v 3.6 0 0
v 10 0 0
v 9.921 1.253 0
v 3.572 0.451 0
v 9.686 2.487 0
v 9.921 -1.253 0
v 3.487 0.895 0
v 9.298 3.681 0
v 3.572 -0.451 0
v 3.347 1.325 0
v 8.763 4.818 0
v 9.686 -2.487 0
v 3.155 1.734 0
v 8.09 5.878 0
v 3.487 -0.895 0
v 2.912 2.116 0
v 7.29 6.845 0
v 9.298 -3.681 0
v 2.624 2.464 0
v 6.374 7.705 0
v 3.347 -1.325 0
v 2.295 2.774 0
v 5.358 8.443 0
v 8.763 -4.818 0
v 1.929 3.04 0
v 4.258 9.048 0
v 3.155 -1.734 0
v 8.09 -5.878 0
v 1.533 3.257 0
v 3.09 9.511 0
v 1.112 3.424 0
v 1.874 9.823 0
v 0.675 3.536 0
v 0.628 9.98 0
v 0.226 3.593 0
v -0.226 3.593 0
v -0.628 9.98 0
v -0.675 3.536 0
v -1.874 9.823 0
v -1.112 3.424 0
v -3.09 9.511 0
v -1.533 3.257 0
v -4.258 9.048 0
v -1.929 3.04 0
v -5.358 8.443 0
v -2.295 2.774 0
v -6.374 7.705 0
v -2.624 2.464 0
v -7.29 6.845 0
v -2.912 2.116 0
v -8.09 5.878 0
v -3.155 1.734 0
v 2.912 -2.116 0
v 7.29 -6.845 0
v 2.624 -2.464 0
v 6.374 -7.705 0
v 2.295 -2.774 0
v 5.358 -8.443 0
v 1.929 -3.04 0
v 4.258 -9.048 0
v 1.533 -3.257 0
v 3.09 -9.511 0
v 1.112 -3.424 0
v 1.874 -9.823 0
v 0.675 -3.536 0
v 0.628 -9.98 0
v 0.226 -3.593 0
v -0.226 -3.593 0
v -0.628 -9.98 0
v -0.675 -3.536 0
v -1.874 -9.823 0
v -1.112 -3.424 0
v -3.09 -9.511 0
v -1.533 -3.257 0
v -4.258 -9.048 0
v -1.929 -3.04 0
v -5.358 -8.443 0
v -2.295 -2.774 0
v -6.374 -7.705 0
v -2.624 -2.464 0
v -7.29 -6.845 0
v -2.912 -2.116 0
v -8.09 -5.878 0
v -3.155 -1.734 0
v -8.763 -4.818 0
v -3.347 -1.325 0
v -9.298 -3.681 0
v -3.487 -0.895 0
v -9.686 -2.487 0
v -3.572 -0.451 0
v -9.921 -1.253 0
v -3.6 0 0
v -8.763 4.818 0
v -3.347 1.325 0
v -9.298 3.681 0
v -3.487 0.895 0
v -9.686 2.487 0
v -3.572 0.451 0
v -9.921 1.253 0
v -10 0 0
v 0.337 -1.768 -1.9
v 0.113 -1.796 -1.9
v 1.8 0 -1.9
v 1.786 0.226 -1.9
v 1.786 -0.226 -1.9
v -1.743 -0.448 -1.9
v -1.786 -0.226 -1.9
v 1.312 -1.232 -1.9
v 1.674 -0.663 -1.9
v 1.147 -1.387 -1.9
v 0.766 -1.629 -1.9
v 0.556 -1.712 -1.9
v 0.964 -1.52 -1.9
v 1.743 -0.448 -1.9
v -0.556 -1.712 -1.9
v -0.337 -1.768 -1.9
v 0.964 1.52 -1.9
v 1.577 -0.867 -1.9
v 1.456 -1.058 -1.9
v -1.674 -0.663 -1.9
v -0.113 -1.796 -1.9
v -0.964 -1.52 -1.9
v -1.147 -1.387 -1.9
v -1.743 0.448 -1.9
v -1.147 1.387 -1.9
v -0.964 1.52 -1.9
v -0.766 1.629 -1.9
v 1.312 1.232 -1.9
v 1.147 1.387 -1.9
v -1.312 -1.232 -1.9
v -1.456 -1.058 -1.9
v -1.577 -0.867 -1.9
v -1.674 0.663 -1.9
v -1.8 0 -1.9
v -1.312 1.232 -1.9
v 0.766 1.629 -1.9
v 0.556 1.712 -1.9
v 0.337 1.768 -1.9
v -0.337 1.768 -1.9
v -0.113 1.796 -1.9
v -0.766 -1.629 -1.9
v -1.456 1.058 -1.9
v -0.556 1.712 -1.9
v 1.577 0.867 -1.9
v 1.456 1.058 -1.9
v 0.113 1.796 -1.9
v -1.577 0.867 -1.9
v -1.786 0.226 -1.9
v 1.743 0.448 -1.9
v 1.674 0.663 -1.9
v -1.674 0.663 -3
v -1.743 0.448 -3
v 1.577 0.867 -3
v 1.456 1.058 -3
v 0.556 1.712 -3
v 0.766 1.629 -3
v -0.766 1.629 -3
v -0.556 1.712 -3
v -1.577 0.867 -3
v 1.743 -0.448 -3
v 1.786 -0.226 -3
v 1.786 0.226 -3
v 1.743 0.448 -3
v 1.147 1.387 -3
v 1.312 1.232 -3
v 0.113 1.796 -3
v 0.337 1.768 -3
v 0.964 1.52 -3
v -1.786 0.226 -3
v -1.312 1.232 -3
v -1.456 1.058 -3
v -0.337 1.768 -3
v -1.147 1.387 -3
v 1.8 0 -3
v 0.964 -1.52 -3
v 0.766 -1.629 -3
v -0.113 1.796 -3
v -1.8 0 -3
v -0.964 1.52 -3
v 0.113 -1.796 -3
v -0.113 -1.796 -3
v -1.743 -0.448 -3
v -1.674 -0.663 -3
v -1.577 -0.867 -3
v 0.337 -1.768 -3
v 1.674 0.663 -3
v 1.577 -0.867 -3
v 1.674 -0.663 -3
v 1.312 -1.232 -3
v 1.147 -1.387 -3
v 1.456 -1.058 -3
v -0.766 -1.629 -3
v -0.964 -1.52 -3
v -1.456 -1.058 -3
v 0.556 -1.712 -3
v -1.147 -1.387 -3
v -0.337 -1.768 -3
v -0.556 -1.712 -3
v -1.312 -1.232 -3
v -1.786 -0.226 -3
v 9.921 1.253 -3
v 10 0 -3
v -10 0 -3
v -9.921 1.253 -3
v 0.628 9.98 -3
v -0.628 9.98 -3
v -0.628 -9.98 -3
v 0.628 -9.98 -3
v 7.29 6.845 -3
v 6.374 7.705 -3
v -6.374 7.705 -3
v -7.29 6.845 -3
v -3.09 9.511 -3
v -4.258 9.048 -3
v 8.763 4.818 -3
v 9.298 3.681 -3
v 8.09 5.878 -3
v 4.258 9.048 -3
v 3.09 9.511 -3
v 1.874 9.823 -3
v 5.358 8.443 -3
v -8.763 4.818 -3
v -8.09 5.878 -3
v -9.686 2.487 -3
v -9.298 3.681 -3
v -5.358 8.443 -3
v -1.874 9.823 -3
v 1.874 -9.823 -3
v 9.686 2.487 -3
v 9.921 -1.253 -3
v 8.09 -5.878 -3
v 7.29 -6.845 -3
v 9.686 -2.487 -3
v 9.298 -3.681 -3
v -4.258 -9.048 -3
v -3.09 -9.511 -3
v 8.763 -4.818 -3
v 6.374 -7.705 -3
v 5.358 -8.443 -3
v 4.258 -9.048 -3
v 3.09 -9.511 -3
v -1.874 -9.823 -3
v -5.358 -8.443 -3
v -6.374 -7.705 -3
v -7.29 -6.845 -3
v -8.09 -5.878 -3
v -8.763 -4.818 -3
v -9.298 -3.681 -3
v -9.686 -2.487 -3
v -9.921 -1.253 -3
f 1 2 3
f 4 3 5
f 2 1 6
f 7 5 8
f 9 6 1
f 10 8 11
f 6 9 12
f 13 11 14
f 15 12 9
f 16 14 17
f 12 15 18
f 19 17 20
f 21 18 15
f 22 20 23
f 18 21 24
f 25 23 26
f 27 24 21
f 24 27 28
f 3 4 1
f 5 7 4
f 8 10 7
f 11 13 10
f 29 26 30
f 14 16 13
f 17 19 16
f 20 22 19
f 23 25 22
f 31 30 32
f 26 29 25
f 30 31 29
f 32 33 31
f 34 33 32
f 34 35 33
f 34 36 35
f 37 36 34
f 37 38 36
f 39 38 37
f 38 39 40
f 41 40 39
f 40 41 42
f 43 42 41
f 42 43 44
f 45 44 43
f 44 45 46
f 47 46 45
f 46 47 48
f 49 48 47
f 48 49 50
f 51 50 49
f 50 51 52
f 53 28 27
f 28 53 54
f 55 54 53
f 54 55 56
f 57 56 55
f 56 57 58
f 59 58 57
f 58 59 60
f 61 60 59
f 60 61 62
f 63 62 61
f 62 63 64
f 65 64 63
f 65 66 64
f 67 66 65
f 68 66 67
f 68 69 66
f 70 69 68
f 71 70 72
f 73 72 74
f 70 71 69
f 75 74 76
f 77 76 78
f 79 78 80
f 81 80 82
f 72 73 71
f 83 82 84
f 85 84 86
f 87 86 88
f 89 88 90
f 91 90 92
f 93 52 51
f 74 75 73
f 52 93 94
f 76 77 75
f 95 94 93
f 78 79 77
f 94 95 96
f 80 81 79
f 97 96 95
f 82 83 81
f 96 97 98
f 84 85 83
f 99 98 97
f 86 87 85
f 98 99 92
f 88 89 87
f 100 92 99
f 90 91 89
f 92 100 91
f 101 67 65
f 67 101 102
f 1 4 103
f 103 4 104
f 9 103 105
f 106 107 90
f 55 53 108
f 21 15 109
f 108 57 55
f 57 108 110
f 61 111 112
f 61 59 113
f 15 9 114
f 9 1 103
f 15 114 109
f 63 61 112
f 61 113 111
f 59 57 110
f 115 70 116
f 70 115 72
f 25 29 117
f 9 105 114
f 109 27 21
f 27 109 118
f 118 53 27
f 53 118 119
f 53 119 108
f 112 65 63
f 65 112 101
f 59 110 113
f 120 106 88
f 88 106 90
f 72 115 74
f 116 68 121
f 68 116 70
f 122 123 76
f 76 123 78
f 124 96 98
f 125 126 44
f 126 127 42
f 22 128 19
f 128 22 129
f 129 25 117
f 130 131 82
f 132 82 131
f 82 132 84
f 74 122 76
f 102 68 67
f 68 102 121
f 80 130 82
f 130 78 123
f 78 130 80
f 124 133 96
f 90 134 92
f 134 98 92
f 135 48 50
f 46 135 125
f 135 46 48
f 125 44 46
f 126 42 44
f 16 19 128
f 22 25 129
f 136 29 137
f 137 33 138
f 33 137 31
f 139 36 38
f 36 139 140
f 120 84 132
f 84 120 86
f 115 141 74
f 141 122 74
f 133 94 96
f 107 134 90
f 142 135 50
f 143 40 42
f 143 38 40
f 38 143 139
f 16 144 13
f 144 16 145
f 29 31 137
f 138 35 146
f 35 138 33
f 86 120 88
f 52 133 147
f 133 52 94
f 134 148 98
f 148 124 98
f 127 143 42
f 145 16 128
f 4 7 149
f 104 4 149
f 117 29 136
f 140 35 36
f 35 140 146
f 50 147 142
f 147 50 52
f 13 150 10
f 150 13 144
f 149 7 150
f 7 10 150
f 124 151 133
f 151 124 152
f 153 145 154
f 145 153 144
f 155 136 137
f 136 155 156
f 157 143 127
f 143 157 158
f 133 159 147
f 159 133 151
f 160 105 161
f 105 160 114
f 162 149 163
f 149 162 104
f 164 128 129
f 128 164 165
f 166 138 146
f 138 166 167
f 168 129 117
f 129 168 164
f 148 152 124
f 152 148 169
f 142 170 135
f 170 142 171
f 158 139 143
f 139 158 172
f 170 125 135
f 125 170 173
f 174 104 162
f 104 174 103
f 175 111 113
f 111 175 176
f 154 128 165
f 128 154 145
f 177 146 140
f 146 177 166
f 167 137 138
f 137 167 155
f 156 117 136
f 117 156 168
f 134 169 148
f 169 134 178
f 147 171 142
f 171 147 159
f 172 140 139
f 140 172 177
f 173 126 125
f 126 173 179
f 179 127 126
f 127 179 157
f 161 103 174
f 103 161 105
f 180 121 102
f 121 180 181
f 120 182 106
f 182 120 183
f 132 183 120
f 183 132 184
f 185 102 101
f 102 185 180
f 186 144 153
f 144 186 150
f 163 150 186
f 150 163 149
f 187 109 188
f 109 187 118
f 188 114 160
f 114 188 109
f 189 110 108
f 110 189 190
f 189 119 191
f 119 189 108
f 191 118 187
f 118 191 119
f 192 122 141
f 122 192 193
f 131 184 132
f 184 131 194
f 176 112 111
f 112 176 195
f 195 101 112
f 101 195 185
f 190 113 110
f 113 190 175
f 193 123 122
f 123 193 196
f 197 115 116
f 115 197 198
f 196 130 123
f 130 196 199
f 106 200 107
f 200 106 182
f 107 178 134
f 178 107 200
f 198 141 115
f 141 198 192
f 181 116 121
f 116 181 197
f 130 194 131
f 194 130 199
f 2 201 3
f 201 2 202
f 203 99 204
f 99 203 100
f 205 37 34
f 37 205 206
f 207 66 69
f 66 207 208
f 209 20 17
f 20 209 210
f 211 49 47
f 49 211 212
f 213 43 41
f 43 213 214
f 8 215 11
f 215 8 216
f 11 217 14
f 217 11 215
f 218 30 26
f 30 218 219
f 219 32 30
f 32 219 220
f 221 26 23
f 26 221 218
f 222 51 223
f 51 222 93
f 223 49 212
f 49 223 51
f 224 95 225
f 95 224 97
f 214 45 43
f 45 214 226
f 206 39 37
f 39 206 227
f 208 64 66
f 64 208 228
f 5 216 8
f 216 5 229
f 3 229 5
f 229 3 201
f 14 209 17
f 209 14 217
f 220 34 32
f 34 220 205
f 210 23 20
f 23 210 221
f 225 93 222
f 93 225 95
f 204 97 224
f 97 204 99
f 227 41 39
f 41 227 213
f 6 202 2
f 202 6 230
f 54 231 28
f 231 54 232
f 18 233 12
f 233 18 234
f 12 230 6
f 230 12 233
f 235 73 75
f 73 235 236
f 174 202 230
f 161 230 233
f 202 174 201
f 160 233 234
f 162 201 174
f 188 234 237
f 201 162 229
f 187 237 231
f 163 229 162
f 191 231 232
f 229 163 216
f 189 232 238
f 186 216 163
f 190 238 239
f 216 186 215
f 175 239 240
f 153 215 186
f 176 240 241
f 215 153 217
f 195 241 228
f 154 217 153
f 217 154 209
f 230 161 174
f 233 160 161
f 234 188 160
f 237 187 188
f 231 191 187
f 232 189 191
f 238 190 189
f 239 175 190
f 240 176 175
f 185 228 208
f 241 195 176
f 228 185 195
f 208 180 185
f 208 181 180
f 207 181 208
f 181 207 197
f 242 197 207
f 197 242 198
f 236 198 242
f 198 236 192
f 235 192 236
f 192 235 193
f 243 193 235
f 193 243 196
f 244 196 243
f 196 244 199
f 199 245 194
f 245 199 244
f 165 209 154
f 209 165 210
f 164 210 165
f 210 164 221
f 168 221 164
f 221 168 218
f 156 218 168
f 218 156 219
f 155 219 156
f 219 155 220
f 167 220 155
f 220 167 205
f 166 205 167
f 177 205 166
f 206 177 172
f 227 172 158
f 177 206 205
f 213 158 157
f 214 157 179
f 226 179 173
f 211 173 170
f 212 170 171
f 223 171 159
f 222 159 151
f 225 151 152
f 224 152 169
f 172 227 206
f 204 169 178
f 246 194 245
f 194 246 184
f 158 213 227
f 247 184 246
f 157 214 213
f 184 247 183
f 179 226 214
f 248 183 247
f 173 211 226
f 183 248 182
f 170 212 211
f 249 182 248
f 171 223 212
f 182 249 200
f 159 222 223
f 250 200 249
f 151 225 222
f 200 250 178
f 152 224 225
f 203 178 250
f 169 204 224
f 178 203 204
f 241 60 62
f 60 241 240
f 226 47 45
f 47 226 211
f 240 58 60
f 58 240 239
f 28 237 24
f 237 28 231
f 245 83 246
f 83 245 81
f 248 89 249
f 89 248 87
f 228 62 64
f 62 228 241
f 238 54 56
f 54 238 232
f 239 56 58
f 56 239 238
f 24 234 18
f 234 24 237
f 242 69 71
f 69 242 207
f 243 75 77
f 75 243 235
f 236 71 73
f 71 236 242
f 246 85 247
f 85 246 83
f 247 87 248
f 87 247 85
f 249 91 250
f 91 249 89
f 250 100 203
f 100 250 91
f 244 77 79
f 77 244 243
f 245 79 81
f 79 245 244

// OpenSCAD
$fn = 50;

difference() {
	union() {
		translate(v = [0, 0, -3.0]) {
			cylinder(h = 3, r = 10.0);
		}
	}
	union() {
		translate(v = [0, 0, 0]) {
			rotate(a = [0, 0, 0]) {
				difference() {
					union() {
						translate(v = [0, 0, -6.0]) {
							cylinder(h = 6, r = 1.5);
						}
						translate(v = [0, 0, -1.9]) {
							cylinder(h = 1.9, r1 = 1.8, r2 = 3.6);
						}
						translate(v = [0, 0, -6.0]) {
							cylinder(h = 6, r = 1.8);
						}
						translate(v = [0, 0, -6.0]) {
							cylinder(h = 6, r = 1.5);
						}
					}
					union();
				}
			}
		}
	}
}
